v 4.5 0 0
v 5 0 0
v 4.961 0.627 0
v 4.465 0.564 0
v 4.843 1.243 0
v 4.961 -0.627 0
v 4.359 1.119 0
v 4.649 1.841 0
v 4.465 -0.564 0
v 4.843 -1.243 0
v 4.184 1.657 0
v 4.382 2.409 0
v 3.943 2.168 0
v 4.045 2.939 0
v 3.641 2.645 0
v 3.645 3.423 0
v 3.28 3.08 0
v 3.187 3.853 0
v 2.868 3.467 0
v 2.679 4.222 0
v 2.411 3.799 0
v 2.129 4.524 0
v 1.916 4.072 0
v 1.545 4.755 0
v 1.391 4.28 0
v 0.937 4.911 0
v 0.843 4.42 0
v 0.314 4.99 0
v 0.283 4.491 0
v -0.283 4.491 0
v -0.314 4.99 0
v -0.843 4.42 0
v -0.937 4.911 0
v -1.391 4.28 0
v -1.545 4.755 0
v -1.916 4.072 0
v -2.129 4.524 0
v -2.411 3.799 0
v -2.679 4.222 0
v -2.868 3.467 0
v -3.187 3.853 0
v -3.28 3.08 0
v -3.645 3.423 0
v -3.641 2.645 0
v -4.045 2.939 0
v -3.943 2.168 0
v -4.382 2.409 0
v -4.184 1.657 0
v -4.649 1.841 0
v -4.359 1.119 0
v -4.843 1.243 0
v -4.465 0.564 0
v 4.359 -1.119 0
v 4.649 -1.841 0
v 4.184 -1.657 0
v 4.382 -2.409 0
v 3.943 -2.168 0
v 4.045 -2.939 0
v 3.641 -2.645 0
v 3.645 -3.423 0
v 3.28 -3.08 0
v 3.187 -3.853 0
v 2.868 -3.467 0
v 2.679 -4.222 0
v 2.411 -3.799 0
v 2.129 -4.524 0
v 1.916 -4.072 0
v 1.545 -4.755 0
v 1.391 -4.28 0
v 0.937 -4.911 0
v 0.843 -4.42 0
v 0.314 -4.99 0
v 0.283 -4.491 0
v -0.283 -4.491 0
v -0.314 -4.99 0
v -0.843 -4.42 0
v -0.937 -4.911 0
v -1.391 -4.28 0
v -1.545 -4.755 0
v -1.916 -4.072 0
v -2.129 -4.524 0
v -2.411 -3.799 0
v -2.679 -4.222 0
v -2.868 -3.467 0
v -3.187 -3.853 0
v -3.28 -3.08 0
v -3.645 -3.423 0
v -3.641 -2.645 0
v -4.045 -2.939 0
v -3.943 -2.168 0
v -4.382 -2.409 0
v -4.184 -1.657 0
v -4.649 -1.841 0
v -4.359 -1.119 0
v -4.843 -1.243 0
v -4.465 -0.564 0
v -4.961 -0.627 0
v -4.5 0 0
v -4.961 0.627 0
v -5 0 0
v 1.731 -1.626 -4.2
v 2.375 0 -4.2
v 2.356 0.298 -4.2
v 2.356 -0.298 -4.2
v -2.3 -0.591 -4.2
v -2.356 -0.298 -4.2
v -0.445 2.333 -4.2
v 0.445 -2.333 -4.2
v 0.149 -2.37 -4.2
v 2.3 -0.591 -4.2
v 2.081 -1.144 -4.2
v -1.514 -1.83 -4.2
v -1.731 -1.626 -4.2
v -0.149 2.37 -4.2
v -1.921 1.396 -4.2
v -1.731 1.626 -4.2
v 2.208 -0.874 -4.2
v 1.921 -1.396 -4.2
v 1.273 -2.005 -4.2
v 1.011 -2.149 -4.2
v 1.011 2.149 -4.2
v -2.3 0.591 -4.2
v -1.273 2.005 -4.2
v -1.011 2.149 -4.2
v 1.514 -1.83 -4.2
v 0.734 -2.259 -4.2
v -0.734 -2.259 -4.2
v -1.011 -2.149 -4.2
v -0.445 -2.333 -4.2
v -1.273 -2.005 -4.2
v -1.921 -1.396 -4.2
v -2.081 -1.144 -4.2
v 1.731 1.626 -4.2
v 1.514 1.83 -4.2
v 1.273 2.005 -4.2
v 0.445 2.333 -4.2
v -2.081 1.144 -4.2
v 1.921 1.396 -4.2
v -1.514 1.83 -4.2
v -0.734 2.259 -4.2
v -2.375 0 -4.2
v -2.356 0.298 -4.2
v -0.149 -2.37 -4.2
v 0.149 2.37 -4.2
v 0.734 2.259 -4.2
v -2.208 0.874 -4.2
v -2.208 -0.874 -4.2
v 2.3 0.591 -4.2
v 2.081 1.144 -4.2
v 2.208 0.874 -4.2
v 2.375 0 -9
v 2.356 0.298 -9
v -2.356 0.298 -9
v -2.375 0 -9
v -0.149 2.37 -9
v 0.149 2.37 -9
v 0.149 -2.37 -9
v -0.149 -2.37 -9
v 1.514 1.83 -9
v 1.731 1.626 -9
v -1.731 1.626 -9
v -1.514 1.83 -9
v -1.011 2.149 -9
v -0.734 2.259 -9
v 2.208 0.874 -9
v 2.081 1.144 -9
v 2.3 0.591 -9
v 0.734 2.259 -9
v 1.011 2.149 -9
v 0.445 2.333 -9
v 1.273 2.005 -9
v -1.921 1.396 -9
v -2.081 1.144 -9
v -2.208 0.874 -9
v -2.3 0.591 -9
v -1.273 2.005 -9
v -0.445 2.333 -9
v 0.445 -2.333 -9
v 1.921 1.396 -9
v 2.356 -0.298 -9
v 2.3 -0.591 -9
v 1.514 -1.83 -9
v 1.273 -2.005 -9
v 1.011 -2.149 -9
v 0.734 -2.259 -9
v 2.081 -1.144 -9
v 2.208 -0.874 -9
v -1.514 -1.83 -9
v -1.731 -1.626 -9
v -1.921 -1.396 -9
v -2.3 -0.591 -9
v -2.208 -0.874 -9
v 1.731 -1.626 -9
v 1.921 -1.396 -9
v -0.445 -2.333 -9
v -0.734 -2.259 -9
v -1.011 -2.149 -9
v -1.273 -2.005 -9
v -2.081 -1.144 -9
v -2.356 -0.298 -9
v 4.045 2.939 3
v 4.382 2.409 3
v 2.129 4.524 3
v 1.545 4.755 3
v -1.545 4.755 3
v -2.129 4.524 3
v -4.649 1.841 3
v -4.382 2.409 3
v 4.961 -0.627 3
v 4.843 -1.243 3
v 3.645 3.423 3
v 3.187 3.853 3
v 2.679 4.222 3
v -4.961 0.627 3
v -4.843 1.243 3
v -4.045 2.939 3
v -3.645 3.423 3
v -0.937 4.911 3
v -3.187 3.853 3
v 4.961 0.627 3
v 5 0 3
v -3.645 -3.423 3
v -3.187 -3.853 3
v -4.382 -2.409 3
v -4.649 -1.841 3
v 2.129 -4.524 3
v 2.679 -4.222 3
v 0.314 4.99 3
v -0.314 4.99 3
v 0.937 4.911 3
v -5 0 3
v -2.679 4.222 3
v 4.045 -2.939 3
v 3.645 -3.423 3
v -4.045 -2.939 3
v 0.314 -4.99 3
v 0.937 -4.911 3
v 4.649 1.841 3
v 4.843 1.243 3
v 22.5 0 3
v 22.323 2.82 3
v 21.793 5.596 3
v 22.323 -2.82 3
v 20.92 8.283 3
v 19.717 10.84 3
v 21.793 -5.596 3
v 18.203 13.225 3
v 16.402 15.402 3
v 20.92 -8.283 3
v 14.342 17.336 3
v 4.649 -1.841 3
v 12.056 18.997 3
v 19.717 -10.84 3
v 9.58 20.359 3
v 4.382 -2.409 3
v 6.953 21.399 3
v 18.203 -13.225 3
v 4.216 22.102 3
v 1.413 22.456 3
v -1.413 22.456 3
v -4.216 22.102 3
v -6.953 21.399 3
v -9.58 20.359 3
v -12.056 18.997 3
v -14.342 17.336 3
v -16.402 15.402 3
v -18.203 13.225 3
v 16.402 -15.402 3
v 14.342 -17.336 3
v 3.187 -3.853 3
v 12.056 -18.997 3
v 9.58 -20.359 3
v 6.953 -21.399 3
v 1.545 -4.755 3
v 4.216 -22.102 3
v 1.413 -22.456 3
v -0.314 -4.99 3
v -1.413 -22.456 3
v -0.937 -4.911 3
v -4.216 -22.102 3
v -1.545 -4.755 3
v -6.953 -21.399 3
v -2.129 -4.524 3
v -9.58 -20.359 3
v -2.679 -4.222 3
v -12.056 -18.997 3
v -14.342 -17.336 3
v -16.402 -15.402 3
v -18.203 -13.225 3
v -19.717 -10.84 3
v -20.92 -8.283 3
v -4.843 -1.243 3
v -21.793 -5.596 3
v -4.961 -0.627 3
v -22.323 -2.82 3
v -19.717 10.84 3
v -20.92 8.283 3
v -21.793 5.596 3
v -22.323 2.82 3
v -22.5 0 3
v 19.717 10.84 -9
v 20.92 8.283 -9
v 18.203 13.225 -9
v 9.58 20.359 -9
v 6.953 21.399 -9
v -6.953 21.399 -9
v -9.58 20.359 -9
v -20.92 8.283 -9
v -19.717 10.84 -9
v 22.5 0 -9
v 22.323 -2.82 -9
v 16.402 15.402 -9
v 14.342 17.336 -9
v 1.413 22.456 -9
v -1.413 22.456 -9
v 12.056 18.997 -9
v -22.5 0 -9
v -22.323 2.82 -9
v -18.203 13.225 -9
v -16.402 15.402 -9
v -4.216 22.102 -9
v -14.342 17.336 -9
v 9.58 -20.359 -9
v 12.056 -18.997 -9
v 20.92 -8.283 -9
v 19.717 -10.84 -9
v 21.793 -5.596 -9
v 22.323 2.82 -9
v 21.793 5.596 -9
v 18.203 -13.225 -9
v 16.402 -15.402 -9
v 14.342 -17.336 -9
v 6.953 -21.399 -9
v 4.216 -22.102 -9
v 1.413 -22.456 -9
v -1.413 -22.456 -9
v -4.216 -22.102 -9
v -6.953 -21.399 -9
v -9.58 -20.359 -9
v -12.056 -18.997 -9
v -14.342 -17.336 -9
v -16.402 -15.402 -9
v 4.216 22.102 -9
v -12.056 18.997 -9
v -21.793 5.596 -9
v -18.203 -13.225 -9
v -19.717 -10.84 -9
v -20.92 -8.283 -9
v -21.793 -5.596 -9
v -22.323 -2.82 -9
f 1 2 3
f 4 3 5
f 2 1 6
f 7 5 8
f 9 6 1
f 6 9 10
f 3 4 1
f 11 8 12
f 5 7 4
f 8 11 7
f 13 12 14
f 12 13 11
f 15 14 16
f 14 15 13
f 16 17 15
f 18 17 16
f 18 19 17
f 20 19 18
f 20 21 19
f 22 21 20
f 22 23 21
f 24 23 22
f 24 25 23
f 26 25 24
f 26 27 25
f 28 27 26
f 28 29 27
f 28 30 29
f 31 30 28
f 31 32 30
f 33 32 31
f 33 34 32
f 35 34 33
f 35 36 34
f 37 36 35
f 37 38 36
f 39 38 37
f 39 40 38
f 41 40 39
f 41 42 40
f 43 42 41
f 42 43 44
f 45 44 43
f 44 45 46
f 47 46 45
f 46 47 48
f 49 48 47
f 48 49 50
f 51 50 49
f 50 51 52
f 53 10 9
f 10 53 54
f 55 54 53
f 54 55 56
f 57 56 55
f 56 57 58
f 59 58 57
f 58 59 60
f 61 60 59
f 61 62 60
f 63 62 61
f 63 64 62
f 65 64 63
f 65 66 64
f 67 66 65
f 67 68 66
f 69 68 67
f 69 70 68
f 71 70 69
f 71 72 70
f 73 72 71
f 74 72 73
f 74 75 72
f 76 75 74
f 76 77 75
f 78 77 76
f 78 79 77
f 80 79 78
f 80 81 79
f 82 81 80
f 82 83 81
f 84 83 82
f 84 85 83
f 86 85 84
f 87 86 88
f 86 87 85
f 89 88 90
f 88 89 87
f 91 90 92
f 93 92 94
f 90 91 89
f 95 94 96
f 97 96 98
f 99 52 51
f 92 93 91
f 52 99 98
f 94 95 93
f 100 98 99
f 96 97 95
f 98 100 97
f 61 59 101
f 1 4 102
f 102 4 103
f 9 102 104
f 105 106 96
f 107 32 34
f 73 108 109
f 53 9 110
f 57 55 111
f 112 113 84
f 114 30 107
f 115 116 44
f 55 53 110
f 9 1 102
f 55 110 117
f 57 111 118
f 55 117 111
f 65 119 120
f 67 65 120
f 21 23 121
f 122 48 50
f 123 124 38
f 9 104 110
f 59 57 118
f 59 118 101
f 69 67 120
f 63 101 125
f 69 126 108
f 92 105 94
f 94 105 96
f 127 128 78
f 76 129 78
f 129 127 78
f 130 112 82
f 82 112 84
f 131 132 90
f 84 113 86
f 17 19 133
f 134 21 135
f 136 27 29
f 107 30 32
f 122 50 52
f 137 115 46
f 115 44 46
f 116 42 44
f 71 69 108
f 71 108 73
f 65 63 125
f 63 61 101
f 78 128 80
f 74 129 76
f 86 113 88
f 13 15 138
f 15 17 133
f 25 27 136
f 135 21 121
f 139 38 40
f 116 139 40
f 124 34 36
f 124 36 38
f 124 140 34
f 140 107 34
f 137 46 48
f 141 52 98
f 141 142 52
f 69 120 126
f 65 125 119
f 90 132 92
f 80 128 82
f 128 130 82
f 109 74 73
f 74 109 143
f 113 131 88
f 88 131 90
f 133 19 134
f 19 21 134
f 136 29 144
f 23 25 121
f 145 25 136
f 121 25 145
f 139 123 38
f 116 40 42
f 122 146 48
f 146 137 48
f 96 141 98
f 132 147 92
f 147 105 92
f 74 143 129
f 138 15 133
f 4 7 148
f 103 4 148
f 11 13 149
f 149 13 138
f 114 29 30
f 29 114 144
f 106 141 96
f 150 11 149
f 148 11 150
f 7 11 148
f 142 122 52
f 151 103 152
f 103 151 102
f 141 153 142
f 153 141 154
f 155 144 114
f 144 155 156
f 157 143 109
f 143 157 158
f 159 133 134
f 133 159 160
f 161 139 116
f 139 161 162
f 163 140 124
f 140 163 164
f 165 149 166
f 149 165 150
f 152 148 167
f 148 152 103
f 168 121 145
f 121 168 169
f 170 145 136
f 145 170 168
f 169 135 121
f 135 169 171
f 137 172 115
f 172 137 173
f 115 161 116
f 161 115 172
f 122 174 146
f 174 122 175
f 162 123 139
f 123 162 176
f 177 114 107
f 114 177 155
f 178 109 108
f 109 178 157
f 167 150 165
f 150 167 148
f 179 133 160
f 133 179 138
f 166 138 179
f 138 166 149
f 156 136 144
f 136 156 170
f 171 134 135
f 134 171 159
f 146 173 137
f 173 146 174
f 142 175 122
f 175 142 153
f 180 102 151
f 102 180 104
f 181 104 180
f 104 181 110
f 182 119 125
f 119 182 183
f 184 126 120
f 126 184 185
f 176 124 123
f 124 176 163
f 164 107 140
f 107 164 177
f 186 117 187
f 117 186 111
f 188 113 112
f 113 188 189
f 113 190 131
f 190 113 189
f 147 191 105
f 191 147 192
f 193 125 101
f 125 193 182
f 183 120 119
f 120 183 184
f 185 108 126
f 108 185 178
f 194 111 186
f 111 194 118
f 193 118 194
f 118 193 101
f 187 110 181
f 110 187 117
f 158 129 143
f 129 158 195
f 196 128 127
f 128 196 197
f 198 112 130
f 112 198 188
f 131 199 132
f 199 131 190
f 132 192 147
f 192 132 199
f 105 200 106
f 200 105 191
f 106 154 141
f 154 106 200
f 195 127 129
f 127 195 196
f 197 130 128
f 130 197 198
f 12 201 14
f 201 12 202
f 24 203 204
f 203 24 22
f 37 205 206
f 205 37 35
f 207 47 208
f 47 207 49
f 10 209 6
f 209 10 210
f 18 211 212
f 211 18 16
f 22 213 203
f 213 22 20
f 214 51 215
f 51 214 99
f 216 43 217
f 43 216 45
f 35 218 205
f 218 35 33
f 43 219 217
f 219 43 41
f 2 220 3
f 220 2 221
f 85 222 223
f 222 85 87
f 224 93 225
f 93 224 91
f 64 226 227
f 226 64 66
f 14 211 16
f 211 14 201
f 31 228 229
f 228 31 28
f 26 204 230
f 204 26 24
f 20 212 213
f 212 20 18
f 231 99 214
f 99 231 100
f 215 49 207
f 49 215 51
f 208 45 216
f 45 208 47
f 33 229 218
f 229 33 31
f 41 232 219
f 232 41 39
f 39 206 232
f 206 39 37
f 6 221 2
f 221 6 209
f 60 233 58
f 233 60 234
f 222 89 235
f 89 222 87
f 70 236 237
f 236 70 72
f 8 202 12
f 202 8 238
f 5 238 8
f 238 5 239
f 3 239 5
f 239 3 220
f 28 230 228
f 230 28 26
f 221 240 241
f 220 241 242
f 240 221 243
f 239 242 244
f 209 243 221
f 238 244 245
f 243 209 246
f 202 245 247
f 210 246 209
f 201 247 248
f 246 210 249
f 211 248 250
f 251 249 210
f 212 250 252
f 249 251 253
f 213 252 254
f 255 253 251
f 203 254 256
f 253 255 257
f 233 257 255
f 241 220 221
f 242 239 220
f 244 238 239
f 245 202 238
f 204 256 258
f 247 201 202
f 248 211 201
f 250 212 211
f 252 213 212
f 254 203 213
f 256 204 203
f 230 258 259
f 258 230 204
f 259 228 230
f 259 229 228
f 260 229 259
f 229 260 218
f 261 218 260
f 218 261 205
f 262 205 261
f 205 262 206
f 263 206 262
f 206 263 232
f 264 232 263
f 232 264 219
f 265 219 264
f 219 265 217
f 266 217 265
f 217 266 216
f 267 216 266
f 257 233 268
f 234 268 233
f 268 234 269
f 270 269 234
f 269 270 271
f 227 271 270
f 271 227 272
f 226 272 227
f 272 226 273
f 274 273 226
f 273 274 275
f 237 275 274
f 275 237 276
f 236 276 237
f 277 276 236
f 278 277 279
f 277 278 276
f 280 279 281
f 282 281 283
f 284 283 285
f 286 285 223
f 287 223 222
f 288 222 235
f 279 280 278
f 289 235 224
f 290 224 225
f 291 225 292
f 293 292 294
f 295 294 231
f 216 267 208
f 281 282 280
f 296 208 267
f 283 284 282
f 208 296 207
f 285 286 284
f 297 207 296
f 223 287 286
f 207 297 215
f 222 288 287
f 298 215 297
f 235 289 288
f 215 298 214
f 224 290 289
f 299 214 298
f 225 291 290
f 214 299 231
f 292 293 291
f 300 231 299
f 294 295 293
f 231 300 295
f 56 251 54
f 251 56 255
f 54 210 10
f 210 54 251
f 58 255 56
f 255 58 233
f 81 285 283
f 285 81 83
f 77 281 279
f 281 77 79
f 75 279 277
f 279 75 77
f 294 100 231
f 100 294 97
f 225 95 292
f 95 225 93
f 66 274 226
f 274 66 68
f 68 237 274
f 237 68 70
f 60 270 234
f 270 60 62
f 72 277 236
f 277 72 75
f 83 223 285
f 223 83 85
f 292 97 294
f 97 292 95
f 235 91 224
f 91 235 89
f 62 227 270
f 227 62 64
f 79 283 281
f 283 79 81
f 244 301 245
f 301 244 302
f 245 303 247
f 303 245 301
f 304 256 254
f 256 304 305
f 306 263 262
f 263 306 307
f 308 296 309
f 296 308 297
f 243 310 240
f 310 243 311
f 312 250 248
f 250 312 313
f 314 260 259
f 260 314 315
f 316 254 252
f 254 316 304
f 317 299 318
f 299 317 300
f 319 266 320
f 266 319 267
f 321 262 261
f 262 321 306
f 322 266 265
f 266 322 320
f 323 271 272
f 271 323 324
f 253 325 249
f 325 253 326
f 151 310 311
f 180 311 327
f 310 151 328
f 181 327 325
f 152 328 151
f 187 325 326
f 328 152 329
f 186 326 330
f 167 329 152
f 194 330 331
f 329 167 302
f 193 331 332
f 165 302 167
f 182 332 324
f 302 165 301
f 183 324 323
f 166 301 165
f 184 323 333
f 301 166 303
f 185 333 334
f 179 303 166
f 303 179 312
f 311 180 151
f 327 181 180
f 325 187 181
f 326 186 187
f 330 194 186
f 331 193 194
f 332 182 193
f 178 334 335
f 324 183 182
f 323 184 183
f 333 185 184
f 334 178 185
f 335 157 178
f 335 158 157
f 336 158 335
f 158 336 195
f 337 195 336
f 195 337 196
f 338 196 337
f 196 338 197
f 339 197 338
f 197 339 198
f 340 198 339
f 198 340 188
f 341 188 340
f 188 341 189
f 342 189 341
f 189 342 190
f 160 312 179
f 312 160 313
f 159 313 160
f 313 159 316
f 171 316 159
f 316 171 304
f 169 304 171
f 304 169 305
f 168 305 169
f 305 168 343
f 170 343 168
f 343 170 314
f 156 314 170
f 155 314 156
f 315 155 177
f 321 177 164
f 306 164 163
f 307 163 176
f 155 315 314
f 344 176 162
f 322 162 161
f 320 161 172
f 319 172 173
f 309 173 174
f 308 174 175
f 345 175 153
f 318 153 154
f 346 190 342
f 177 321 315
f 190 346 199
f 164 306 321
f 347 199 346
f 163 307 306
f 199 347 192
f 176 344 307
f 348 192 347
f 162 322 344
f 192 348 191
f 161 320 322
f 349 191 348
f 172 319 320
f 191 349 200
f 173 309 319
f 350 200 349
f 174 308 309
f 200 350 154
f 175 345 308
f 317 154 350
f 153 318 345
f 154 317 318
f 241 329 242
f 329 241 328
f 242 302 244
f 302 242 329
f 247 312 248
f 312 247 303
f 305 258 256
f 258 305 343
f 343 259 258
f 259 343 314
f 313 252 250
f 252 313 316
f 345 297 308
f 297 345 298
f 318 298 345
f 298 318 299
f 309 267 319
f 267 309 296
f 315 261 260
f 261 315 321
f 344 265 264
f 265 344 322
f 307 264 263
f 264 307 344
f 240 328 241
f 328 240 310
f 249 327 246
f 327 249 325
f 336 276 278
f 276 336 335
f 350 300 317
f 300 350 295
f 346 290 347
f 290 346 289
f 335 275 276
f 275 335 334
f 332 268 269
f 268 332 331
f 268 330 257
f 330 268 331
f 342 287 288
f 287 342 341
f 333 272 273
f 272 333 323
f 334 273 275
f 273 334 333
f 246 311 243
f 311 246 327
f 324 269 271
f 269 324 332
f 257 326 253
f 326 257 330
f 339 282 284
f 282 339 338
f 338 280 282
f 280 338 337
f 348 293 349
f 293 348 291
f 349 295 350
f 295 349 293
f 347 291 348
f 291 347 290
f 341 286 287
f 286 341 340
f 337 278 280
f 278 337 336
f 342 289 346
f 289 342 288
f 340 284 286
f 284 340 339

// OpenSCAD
$fn = 50;


difference() {
	union() {
		translate(v = [0, 0, -9.0000000000]) {
			cylinder(h = 12, r = 22.5000000000);
		}
	}
	union() {
		translate(v = [0, 0, 0]) {
			rotate(a = [0, 0, 0]) {
				difference() {
					union() {
						translate(v = [0, 0, -12.0000000000]) {
							cylinder(h = 12, r = 2.2500000000);
						}
						translate(v = [0, 0, -4.2000000000]) {
							cylinder(h = 4.2000000000, r1 = 2.3750000000, r2 = 4.5000000000);
						}
						translate(v = [0, 0, -12.0000000000]) {
							cylinder(h = 12, r = 2.3750000000);
						}
						translate(v = [0, 0, -12.0000000000]) {
							cylinder(h = 12, r = 2.2500000000);
						}
					}
					union();
				}
			}
		}
		#cylinder(h = 3, r = 5.0000000000);
	}
}
